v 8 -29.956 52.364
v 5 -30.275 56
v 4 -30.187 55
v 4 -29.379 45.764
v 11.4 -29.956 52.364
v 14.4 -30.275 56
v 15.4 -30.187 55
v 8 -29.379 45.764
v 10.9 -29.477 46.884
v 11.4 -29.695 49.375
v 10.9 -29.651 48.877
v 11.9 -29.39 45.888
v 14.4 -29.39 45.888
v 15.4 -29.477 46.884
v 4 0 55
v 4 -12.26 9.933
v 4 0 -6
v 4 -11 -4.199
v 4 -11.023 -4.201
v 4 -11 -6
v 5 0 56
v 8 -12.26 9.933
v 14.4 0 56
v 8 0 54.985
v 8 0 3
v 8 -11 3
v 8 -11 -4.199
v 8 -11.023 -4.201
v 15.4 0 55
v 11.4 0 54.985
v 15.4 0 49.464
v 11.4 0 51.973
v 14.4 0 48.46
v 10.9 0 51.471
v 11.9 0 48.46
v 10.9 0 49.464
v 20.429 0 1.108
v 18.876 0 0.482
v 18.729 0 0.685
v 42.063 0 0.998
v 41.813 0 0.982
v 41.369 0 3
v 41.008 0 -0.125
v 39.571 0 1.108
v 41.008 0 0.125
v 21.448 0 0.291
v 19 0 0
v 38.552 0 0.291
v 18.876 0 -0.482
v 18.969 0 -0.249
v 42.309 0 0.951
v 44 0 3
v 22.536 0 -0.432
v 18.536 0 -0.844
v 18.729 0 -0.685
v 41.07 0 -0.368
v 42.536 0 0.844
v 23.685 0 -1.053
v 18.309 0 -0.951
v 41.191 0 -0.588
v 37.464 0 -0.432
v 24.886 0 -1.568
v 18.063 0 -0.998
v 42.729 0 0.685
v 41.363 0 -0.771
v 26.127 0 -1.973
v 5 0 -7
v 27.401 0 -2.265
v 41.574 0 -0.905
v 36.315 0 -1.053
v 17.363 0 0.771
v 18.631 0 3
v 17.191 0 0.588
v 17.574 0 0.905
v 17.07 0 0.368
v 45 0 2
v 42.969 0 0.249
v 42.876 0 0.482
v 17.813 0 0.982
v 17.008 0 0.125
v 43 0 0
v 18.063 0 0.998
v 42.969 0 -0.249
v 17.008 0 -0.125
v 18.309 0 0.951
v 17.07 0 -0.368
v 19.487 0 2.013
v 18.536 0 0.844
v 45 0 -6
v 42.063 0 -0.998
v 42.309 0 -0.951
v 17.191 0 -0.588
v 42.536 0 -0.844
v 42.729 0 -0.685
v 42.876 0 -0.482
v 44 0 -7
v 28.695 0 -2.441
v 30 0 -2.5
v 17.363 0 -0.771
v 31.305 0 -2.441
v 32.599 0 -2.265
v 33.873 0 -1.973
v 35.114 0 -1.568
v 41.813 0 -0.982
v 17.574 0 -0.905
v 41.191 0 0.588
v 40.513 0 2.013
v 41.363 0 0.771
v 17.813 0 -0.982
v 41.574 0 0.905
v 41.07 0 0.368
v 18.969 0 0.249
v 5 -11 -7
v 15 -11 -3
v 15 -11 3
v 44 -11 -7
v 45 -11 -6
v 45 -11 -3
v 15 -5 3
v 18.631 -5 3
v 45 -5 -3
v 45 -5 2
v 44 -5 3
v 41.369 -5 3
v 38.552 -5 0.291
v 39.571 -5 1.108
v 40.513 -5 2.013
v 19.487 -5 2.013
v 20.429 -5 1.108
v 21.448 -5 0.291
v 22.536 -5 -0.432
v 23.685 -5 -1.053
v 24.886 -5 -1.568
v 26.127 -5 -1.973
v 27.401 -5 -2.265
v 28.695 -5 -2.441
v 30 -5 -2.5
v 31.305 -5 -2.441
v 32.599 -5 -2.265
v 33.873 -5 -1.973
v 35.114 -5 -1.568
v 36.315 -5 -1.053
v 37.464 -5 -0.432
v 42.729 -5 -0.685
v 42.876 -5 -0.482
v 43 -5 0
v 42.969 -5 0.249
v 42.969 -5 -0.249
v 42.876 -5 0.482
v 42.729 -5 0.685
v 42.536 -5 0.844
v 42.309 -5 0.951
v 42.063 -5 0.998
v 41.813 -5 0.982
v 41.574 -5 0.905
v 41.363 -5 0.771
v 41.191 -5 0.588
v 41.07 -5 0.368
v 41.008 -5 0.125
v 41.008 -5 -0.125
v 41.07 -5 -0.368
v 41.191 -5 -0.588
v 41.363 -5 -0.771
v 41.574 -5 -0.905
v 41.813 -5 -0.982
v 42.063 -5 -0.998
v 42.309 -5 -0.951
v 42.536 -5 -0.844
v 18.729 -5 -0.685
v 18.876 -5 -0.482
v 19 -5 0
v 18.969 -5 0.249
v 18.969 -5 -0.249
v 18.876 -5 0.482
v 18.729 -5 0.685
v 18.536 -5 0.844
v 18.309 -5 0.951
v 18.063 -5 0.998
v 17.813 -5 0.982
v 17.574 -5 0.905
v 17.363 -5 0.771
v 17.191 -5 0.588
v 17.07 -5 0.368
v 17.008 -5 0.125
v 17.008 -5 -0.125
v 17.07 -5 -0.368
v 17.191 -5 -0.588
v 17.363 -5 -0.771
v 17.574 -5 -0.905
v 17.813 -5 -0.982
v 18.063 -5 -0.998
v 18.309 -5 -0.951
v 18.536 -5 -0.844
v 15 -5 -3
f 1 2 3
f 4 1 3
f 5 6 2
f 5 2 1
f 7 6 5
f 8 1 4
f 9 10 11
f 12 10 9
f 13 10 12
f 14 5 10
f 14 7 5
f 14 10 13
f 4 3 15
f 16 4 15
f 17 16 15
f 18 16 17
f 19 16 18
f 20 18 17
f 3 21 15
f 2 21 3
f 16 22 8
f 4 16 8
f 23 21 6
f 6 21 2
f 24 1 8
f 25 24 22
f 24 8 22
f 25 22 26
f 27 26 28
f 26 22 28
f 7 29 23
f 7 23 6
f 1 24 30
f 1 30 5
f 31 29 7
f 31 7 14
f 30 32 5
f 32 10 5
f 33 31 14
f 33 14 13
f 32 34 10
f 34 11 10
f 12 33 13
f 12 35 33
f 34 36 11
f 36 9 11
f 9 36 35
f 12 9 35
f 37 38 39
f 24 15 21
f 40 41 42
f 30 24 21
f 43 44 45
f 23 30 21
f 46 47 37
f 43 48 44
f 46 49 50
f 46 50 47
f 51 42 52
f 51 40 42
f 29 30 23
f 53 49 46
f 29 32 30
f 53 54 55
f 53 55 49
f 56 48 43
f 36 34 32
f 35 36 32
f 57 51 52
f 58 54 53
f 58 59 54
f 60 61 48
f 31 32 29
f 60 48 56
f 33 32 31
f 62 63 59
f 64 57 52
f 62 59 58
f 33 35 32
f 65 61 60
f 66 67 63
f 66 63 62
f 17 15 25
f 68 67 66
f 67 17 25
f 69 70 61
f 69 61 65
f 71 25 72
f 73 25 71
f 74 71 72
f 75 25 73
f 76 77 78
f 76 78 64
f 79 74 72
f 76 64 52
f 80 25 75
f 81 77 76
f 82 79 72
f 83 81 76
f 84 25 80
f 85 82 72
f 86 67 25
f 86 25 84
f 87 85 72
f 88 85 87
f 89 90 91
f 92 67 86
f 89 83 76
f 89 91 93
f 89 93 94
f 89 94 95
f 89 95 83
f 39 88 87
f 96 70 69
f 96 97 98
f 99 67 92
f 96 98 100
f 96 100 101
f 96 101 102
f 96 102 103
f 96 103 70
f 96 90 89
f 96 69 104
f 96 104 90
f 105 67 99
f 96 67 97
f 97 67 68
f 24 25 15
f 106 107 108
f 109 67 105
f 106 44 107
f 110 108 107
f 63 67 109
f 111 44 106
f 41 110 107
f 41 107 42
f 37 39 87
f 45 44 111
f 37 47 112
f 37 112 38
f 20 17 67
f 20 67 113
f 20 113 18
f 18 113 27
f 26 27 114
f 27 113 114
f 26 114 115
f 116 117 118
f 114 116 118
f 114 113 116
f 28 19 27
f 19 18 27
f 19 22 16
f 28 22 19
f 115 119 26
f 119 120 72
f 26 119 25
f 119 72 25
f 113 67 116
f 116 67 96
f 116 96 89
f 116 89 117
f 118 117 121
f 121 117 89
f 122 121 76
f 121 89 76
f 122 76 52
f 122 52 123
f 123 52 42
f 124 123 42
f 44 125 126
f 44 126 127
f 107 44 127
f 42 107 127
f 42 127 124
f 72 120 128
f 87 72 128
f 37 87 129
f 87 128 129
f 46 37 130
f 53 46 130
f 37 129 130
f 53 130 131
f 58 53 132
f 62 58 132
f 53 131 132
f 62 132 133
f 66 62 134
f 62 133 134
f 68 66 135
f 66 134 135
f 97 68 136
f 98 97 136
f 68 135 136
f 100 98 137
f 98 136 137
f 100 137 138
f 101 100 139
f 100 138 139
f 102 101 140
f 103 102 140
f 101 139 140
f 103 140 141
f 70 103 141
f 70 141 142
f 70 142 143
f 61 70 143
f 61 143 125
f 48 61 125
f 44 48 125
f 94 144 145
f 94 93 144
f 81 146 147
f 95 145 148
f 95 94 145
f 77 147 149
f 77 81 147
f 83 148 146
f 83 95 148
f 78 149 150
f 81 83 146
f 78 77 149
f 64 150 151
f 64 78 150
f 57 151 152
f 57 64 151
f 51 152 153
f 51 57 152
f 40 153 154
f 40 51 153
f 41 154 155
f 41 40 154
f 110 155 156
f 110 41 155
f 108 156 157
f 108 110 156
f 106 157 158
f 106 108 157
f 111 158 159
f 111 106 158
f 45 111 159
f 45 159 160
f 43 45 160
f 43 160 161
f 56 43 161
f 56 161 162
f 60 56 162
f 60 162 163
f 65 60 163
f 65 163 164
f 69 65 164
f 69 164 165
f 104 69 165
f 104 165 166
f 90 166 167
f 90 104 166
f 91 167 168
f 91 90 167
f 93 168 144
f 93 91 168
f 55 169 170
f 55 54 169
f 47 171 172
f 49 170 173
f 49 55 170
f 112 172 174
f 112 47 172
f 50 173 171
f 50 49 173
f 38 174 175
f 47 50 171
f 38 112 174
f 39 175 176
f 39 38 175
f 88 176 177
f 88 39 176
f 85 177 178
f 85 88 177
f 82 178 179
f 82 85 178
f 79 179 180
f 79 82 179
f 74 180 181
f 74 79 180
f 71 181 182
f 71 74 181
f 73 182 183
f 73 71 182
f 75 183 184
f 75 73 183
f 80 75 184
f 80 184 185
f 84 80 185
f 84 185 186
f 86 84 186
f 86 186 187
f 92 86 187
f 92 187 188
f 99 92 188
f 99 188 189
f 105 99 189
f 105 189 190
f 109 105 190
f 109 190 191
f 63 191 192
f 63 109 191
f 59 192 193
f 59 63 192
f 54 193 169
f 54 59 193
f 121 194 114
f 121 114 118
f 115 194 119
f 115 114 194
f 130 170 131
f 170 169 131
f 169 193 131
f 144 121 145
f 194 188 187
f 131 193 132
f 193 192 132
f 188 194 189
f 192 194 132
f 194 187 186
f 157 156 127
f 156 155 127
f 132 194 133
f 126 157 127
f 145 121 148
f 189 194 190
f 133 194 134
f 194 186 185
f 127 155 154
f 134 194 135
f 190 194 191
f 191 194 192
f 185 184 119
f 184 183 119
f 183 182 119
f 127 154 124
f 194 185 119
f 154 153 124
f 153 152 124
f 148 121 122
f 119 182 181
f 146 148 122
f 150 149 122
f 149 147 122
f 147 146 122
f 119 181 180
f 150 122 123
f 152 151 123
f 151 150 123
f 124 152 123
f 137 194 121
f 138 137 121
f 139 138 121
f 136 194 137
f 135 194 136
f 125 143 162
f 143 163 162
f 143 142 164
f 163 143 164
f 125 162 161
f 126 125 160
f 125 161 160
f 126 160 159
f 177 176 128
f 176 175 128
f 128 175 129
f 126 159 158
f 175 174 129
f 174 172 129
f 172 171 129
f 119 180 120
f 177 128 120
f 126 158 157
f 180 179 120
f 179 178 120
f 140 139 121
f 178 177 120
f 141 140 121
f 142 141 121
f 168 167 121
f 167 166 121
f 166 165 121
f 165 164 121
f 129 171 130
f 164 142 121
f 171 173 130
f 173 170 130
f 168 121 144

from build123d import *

# Parameters (mm, degrees)
SKETCH002_W          = 34
SKETCH002_H          = 4
PAD001_DEPTH         = 30
EXTRUSION008_DEPTH   = 13.9308213426
BOX003_W             = 13
BOX003_H             = 10
BOX003_DEPTH         = 60
FACE006_W            = 8.14
FACE006_H            = 69.180787832
EXTRUSION006_DEPTH   = 0.4604923972
EXTRUSION005_DEPTH   = 8.14
FACE003_W            = 4
FACE003_H            = 14
EXTRUSION003_DEPTH   = 3.51
FACE004_W            = 3.51
FACE004_H            = 4
EXTRUSION004_DEPTH   = 69.180787832
FACE007_W            = 4
FACE007_H            = 69.180787832
EXTRUSION007_DEPTH   = 0.4131433628
FACE002_W            = 10
FACE002_H            = 4
EXTRUSION002_DEPTH   = 14
EXTRUSION_DEPTH      = 10
EXTRUSION001_DEPTH   = 10
FUSION001_ROLL_ANGLE = 5.0006445976
BOX002_W             = 13
BOX002_H             = 13
BOX002_DEPTH         = 49
BOX001_W             = 15
BOX001_H             = 11
BOX001_DEPTH         = 49
BOX_W                = 31
BOX_H                = 18
BOX_DEPTH            = 14
CYLINDER_R           = 14.5
CYLINDER_DEPTH       = 13
CYLINDER_ROLL_ANGLE  = 90.0000000001
SKETCH_R             = 1
PAD_DEPTH            = 11
CHAMFER_SIZE         = 1
CHAMFER001_SIZE      = 1
CHAMFER002_SIZE      = 1
CHAMFER003_SIZE      = 1
CHAMFER004_SIZE      = 1
CHAMFER005_SIZE      = 1
CHAMFER006_SIZE      = 1
EXTRUSION009_DEPTH   = 13.9308213426
POCKET_DEPTH         = 5
CHAMFER007_SIZE      = 1


with BuildPart() as pad001:
    # Sketch002 → Pad001 (new body)
    with BuildSketch(Plane.YZ):
        with Locations((-15, 58)):
            Rectangle(SKETCH002_W, SKETCH002_H)
    extrude(amount=PAD001_DEPTH)


with BuildPart() as extrusion008:
    # Face008 → Extrusion008 (new body)
    with BuildSketch(Plane(origin=(-17.578899357, -16.0333863028, 53.0614958622), x_dir=(-1, 0, 0), z_dir=(0, -0.9961937175, -0.0871669503))):
        Polygon((4.421100643, -4.5183191267), (4.421100643, -0.5183191267), (1.021100643, -0.5183191267), (1.021100643, 2.4816808733), (1.521100643, 2.9816808733), (1.521100643, 4.9816808733), (0.521100643, 5.9816808733), (-1.978899357, 5.9816808733), (-2.978899357, 4.9816808733), (-2.978899357, -3.5183191267), (-1.978899357, -4.5183191267), align=None)
    extrude(amount=EXTRUSION008_DEPTH)


with BuildPart() as cube003:
    # Box003 → Box003 (new body)
    with BuildSketch(Plane(origin=(-27, 0, 0), x_dir=(1, 0, 0), z_dir=(0, 0, 1))):
        with Locations((6.5, 5)):
            Rectangle(BOX003_W, BOX003_H)
    extrude(amount=BOX003_DEPTH)


with BuildPart() as extrusion006:
    # Face006 → Extrusion006 (new body)
    with BuildSketch(Plane(origin=(-17.93, -18.7549998831, 43.8980956594), x_dir=(-1, 0, 0), z_dir=(0, -0.9961937175, -0.0871669503))):
        Rectangle(FACE006_W, FACE006_H)
    extrude(amount=EXTRUSION006_DEPTH)


with BuildPart() as extrusion005:
    # Face005 → Extrusion005 (new body)
    with BuildSketch(Plane(origin=(-22, -17.0066799089, 44.0510736571), x_dir=(0, -1, 0), z_dir=(1, 0, 0))):
        Polygon((4.7634591209, -34.3057551071), (-1.2668191725, 34.6117111026), (-4.7634591209, 34.3057551071), (1.2668191725, -34.6117111026), align=None)
    extrude(amount=EXTRUSION005_DEPTH)


with BuildPart() as extrusion003:
    # Face003 → Extrusion003 (new body)
    with BuildSketch(Plane(origin=(-24, -15.1296920845, 2.4660065321), x_dir=(-1, 0, 0), z_dir=(0, -0.9961937175, -0.0871669503))):
        Rectangle(FACE003_W, FACE003_H)
    extrude(amount=-EXTRUSION003_DEPTH)


with BuildPart() as fusion002:
    # Face004 → Extrusion004 (new body)
    with BuildSketch(Plane(origin=(-24, -13.9915407622, 9.5923405523), x_dir=(0, 0.9961937175, 0.0871669503), z_dir=(0, -0.0871669503, 0.9961937175))):
        Rectangle(FACE004_W, FACE004_H)
    extrude(amount=EXTRUSION004_DEPTH)

    # Fusion002: union Extrusion003
    add(extrusion003.part)


with BuildPart() as fusion003:
    # Face007 → Extrusion007 (new body)
    with BuildSketch(Plane(origin=(-24, -18.7549998831, 43.8980956594), x_dir=(-1, 0, 0), z_dir=(0, -0.9961937175, -0.0871669503))):
        Rectangle(FACE007_W, FACE007_H)
    extrude(amount=EXTRUSION007_DEPTH)

    # Fusion003: union Extrusion006, Extrusion005, Fusion002
    add(extrusion006.part)
    add(extrusion005.part)
    add(fusion002.part)


with BuildPart() as extrusion002:
    # Face002 → Extrusion002 (new body)
    with BuildSketch(Plane(origin=(-24, -15, 11), x_dir=(0, -1, 0), z_dir=(0, 0, -1))):
        Rectangle(FACE002_W, FACE002_H)
    extrude(amount=EXTRUSION002_DEPTH)


with BuildPart() as extrusion:
    # Face → Extrusion (new body)
    with BuildSketch(Plane(origin=(-22.5493005697, -10, 39.3433444568), x_dir=(-1, 0, 0), z_dir=(0, -1, 0))):
        Polygon((3.4506994303, 28.3433444568), (-0.5493005697, 28.3433444568), (-0.5493005697, -15.6566555432), (-3.9493005697, -15.6566555432), (-3.9493005697, -12.6566555432), (-3.4493005697, -12.1566555432), (-3.4493005697, -10.1566555432), (-4.4493005697, -9.1566555432), (-6.9493005697, -9.1566555432), (-7.9493005697, -10.1566555432), (-7.9493005697, -18.6566555432), (-6.9493005697, -19.6566555432), (2.4506994303, -19.6566555432), (3.4506994303, -18.6566555432), align=None)
    extrude(amount=EXTRUSION_DEPTH)


with BuildPart() as cut005:
    # Face001 → Extrusion001 (new body)
    with BuildSketch(Plane(origin=(-22.5493005697, -10, 39.3433444568), x_dir=(1, 0, 0), z_dir=(0, 1, 0))):
        Polygon((0.5493005697, 28.3433444568), (-3.4506994303, 28.3433444568), (-3.4506994303, -18.6566555432), (-2.4506994303, -19.6566555432), (6.9493005697, -19.6566555432), (7.9493005697, -18.6566555432), (7.9493005697, -10.1566555432), (6.9493005697, -9.1566555432), (4.4493005697, -9.1566555432), (3.4493005697, -10.1566555432), (3.4493005697, -12.1566555432), (3.9493005697, -12.6566555432), (3.9493005697, -15.6566555432), (0.5493005697, -15.6566555432), align=None)
    extrude(amount=EXTRUSION001_DEPTH)

    # Fusion: union Extrusion
    add(extrusion.part)

    # Fusion001: union Extrusion002
    add(extrusion002.part)


with BuildPart() as cut005_1:
    # Fusion001 roll: moved
    add(cut005.part.rotate(Axis((0, 0, 0), (1, 0, 0)), FUSION001_ROLL_ANGLE))


with BuildPart() as cut005_2:
    # Fusion001 placement: moved
    add(cut005_1.part.moved(Location((0, 5.1428500666, 0.2245706677))))

    # Cut004: cut Fusion003
    add(fusion003.part, mode=Mode.SUBTRACT)

    # Cut005: cut Cube003
    add(cube003.part, mode=Mode.SUBTRACT)


with BuildPart() as cube002:
    # Box002 → Box002 (new body)
    with BuildSketch(Plane(origin=(-27, -12, 11), x_dir=(1, 0, 0), z_dir=(0, 0, 1))):
        with Locations((6.5, 6.5)):
            Rectangle(BOX002_W, BOX002_H)
    extrude(amount=BOX002_DEPTH)


with BuildPart() as cube001:
    # Box001 → Box001 (new body)
    with BuildSketch(Plane(origin=(-29, -21, 11), x_dir=(1, 0, 0), z_dir=(0, 0, 1))):
        with Locations((7.5, 5.5)):
            Rectangle(BOX001_W, BOX001_H)
    extrude(amount=BOX001_DEPTH)


with BuildPart() as cube:
    # Box → Box (new body)
    with BuildSketch(Plane(origin=(-15, -23, -3), x_dir=(1, 0, 0), z_dir=(0, 0, 1))):
        with Locations((15.5, 9)):
            Rectangle(BOX_W, BOX_H)
    extrude(amount=BOX_DEPTH)


with BuildPart() as cylinder:
    # Cylinder → Cylinder (new body)
    with BuildSketch(Plane.XY):
        Circle(CYLINDER_R)
    extrude(amount=CYLINDER_DEPTH)


with BuildPart() as cylinder_1:
    # Cylinder roll: moved
    add(cylinder.part.rotate(Axis((0, 0, 0), (1, 0, 0)), CYLINDER_ROLL_ANGLE))


with BuildPart() as cylinder_2:
    # Cylinder placement: moved
    add(cylinder_1.part.moved(Location((0, 1, 12))))


with BuildPart() as fusion004:
    # Sketch → Pad (new body)
    with BuildSketch(Plane.XZ):
        Polygon((15, -7), (15, 3), (-22, 3), (-22, 55), (-18.6, 55), (-18.6, 52), (-19.1, 51.5), (-19.1, 48.5), (-14.6, 48.5), (-14.6, 59), (-26, 59), (-26, -7), align=None)
        with Locations((-12, 0)):
            Circle(SKETCH_R, mode=Mode.SUBTRACT)
        with Locations((12, 0)):
            Circle(SKETCH_R, mode=Mode.SUBTRACT)
    extrude(amount=PAD_DEPTH)

    # Cut: cut Cylinder
    add(cylinder_2.part, mode=Mode.SUBTRACT)

    # Cut001: cut Cube
    add(cube.part, mode=Mode.SUBTRACT)

    # Chamfer
    chamfer_edges = [fusion004.edges().sort_by_distance(p)[0] for p in [
        (15, -5.5, -7),
    ]]
    chamfer(chamfer_edges, length=CHAMFER_SIZE)

    # Chamfer001
    chamfer001_edges = [fusion004.edges().sort_by_distance(p)[0] for p in [
        (-26, -5.5, -7),
    ]]
    chamfer(chamfer001_edges, length=CHAMFER001_SIZE)

    # Chamfer002
    chamfer002_edges = [fusion004.edges().sort_by_distance(p)[0] for p in [
        (-26, -5.5, 59),
    ]]
    chamfer(chamfer002_edges, length=CHAMFER002_SIZE)

    # Chamfer003
    chamfer003_edges = [fusion004.edges().sort_by_distance(p)[0] for p in [
        (-14.6, -5.5, 59),
    ]]
    chamfer(chamfer003_edges, length=CHAMFER003_SIZE)

    # Chamfer004
    chamfer004_edges = [fusion004.edges().sort_by_distance(p)[0] for p in [
        (-14.6, -5.5, 48.5),
    ]]
    chamfer(chamfer004_edges, length=CHAMFER004_SIZE)

    # Chamfer005
    chamfer005_edges = [fusion004.edges().sort_by_distance(p)[0] for p in [
        (-19.1, -5.5, 48.5),
    ]]
    chamfer(chamfer005_edges, length=CHAMFER005_SIZE)

    # Chamfer006
    chamfer006_edges = [fusion004.edges().sort_by_distance(p)[0] for p in [
        (15, -2.5, 3),
    ]]
    chamfer(chamfer006_edges, length=CHAMFER006_SIZE)

    # Cut002: cut Cube001
    add(cube001.part, mode=Mode.SUBTRACT)

    # Cut003: cut Cube002
    add(cube002.part, mode=Mode.SUBTRACT)

    # Fusion004: union Cut005
    add(cut005_2.part)


with BuildPart() as chamfer007:
    # Face009 → Extrusion009 (new body)
    with BuildSketch(Plane(origin=(-23.9956483899, -14.3298412993, 33.5924101077), x_dir=(-1, 0, 0), z_dir=(0, -0.9961937175, -0.0871669503))):
        Polygon((2.0043516101, 23.9382071366), (-1.9956483899, 23.9382071366), (-1.9956483899, -20.0617928634), (-1.9956483899, -24.0617928634), (1.0043516101, -24.0617928634), (2.0043516101, -23.0617928634), align=None)
    extrude(amount=EXTRUSION009_DEPTH)

    # Sketch001 → Pocket (cut)
    with BuildSketch(Plane.YZ.offset(-22)):
        Polygon((-12.153362, 9.710751), (-30, 47.063831), (-30, 0), align=None)
    extrude(amount=-POCKET_DEPTH, mode=Mode.SUBTRACT)

    # Fusion005: union Extrusion008, Fusion004
    add(extrusion008.part)
    add(fusion004.part)


with BuildPart() as chamfer007_1:
    # Fusion005 placement: moved
    add(chamfer007.part.moved(Location((30, 0, 0))))

    # Cut006: cut Pad001
    add(pad001.part, mode=Mode.SUBTRACT)

    # Chamfer007
    chamfer007_edges = [chamfer007_1.edges().sort_by_distance(p)[0] for p in [
        (4, -11.406738, 56),
        (15.4, -11.406738, 56),
    ]]
    chamfer(chamfer007_edges, length=CHAMFER007_SIZE)


solid = chamfer007_1.part
